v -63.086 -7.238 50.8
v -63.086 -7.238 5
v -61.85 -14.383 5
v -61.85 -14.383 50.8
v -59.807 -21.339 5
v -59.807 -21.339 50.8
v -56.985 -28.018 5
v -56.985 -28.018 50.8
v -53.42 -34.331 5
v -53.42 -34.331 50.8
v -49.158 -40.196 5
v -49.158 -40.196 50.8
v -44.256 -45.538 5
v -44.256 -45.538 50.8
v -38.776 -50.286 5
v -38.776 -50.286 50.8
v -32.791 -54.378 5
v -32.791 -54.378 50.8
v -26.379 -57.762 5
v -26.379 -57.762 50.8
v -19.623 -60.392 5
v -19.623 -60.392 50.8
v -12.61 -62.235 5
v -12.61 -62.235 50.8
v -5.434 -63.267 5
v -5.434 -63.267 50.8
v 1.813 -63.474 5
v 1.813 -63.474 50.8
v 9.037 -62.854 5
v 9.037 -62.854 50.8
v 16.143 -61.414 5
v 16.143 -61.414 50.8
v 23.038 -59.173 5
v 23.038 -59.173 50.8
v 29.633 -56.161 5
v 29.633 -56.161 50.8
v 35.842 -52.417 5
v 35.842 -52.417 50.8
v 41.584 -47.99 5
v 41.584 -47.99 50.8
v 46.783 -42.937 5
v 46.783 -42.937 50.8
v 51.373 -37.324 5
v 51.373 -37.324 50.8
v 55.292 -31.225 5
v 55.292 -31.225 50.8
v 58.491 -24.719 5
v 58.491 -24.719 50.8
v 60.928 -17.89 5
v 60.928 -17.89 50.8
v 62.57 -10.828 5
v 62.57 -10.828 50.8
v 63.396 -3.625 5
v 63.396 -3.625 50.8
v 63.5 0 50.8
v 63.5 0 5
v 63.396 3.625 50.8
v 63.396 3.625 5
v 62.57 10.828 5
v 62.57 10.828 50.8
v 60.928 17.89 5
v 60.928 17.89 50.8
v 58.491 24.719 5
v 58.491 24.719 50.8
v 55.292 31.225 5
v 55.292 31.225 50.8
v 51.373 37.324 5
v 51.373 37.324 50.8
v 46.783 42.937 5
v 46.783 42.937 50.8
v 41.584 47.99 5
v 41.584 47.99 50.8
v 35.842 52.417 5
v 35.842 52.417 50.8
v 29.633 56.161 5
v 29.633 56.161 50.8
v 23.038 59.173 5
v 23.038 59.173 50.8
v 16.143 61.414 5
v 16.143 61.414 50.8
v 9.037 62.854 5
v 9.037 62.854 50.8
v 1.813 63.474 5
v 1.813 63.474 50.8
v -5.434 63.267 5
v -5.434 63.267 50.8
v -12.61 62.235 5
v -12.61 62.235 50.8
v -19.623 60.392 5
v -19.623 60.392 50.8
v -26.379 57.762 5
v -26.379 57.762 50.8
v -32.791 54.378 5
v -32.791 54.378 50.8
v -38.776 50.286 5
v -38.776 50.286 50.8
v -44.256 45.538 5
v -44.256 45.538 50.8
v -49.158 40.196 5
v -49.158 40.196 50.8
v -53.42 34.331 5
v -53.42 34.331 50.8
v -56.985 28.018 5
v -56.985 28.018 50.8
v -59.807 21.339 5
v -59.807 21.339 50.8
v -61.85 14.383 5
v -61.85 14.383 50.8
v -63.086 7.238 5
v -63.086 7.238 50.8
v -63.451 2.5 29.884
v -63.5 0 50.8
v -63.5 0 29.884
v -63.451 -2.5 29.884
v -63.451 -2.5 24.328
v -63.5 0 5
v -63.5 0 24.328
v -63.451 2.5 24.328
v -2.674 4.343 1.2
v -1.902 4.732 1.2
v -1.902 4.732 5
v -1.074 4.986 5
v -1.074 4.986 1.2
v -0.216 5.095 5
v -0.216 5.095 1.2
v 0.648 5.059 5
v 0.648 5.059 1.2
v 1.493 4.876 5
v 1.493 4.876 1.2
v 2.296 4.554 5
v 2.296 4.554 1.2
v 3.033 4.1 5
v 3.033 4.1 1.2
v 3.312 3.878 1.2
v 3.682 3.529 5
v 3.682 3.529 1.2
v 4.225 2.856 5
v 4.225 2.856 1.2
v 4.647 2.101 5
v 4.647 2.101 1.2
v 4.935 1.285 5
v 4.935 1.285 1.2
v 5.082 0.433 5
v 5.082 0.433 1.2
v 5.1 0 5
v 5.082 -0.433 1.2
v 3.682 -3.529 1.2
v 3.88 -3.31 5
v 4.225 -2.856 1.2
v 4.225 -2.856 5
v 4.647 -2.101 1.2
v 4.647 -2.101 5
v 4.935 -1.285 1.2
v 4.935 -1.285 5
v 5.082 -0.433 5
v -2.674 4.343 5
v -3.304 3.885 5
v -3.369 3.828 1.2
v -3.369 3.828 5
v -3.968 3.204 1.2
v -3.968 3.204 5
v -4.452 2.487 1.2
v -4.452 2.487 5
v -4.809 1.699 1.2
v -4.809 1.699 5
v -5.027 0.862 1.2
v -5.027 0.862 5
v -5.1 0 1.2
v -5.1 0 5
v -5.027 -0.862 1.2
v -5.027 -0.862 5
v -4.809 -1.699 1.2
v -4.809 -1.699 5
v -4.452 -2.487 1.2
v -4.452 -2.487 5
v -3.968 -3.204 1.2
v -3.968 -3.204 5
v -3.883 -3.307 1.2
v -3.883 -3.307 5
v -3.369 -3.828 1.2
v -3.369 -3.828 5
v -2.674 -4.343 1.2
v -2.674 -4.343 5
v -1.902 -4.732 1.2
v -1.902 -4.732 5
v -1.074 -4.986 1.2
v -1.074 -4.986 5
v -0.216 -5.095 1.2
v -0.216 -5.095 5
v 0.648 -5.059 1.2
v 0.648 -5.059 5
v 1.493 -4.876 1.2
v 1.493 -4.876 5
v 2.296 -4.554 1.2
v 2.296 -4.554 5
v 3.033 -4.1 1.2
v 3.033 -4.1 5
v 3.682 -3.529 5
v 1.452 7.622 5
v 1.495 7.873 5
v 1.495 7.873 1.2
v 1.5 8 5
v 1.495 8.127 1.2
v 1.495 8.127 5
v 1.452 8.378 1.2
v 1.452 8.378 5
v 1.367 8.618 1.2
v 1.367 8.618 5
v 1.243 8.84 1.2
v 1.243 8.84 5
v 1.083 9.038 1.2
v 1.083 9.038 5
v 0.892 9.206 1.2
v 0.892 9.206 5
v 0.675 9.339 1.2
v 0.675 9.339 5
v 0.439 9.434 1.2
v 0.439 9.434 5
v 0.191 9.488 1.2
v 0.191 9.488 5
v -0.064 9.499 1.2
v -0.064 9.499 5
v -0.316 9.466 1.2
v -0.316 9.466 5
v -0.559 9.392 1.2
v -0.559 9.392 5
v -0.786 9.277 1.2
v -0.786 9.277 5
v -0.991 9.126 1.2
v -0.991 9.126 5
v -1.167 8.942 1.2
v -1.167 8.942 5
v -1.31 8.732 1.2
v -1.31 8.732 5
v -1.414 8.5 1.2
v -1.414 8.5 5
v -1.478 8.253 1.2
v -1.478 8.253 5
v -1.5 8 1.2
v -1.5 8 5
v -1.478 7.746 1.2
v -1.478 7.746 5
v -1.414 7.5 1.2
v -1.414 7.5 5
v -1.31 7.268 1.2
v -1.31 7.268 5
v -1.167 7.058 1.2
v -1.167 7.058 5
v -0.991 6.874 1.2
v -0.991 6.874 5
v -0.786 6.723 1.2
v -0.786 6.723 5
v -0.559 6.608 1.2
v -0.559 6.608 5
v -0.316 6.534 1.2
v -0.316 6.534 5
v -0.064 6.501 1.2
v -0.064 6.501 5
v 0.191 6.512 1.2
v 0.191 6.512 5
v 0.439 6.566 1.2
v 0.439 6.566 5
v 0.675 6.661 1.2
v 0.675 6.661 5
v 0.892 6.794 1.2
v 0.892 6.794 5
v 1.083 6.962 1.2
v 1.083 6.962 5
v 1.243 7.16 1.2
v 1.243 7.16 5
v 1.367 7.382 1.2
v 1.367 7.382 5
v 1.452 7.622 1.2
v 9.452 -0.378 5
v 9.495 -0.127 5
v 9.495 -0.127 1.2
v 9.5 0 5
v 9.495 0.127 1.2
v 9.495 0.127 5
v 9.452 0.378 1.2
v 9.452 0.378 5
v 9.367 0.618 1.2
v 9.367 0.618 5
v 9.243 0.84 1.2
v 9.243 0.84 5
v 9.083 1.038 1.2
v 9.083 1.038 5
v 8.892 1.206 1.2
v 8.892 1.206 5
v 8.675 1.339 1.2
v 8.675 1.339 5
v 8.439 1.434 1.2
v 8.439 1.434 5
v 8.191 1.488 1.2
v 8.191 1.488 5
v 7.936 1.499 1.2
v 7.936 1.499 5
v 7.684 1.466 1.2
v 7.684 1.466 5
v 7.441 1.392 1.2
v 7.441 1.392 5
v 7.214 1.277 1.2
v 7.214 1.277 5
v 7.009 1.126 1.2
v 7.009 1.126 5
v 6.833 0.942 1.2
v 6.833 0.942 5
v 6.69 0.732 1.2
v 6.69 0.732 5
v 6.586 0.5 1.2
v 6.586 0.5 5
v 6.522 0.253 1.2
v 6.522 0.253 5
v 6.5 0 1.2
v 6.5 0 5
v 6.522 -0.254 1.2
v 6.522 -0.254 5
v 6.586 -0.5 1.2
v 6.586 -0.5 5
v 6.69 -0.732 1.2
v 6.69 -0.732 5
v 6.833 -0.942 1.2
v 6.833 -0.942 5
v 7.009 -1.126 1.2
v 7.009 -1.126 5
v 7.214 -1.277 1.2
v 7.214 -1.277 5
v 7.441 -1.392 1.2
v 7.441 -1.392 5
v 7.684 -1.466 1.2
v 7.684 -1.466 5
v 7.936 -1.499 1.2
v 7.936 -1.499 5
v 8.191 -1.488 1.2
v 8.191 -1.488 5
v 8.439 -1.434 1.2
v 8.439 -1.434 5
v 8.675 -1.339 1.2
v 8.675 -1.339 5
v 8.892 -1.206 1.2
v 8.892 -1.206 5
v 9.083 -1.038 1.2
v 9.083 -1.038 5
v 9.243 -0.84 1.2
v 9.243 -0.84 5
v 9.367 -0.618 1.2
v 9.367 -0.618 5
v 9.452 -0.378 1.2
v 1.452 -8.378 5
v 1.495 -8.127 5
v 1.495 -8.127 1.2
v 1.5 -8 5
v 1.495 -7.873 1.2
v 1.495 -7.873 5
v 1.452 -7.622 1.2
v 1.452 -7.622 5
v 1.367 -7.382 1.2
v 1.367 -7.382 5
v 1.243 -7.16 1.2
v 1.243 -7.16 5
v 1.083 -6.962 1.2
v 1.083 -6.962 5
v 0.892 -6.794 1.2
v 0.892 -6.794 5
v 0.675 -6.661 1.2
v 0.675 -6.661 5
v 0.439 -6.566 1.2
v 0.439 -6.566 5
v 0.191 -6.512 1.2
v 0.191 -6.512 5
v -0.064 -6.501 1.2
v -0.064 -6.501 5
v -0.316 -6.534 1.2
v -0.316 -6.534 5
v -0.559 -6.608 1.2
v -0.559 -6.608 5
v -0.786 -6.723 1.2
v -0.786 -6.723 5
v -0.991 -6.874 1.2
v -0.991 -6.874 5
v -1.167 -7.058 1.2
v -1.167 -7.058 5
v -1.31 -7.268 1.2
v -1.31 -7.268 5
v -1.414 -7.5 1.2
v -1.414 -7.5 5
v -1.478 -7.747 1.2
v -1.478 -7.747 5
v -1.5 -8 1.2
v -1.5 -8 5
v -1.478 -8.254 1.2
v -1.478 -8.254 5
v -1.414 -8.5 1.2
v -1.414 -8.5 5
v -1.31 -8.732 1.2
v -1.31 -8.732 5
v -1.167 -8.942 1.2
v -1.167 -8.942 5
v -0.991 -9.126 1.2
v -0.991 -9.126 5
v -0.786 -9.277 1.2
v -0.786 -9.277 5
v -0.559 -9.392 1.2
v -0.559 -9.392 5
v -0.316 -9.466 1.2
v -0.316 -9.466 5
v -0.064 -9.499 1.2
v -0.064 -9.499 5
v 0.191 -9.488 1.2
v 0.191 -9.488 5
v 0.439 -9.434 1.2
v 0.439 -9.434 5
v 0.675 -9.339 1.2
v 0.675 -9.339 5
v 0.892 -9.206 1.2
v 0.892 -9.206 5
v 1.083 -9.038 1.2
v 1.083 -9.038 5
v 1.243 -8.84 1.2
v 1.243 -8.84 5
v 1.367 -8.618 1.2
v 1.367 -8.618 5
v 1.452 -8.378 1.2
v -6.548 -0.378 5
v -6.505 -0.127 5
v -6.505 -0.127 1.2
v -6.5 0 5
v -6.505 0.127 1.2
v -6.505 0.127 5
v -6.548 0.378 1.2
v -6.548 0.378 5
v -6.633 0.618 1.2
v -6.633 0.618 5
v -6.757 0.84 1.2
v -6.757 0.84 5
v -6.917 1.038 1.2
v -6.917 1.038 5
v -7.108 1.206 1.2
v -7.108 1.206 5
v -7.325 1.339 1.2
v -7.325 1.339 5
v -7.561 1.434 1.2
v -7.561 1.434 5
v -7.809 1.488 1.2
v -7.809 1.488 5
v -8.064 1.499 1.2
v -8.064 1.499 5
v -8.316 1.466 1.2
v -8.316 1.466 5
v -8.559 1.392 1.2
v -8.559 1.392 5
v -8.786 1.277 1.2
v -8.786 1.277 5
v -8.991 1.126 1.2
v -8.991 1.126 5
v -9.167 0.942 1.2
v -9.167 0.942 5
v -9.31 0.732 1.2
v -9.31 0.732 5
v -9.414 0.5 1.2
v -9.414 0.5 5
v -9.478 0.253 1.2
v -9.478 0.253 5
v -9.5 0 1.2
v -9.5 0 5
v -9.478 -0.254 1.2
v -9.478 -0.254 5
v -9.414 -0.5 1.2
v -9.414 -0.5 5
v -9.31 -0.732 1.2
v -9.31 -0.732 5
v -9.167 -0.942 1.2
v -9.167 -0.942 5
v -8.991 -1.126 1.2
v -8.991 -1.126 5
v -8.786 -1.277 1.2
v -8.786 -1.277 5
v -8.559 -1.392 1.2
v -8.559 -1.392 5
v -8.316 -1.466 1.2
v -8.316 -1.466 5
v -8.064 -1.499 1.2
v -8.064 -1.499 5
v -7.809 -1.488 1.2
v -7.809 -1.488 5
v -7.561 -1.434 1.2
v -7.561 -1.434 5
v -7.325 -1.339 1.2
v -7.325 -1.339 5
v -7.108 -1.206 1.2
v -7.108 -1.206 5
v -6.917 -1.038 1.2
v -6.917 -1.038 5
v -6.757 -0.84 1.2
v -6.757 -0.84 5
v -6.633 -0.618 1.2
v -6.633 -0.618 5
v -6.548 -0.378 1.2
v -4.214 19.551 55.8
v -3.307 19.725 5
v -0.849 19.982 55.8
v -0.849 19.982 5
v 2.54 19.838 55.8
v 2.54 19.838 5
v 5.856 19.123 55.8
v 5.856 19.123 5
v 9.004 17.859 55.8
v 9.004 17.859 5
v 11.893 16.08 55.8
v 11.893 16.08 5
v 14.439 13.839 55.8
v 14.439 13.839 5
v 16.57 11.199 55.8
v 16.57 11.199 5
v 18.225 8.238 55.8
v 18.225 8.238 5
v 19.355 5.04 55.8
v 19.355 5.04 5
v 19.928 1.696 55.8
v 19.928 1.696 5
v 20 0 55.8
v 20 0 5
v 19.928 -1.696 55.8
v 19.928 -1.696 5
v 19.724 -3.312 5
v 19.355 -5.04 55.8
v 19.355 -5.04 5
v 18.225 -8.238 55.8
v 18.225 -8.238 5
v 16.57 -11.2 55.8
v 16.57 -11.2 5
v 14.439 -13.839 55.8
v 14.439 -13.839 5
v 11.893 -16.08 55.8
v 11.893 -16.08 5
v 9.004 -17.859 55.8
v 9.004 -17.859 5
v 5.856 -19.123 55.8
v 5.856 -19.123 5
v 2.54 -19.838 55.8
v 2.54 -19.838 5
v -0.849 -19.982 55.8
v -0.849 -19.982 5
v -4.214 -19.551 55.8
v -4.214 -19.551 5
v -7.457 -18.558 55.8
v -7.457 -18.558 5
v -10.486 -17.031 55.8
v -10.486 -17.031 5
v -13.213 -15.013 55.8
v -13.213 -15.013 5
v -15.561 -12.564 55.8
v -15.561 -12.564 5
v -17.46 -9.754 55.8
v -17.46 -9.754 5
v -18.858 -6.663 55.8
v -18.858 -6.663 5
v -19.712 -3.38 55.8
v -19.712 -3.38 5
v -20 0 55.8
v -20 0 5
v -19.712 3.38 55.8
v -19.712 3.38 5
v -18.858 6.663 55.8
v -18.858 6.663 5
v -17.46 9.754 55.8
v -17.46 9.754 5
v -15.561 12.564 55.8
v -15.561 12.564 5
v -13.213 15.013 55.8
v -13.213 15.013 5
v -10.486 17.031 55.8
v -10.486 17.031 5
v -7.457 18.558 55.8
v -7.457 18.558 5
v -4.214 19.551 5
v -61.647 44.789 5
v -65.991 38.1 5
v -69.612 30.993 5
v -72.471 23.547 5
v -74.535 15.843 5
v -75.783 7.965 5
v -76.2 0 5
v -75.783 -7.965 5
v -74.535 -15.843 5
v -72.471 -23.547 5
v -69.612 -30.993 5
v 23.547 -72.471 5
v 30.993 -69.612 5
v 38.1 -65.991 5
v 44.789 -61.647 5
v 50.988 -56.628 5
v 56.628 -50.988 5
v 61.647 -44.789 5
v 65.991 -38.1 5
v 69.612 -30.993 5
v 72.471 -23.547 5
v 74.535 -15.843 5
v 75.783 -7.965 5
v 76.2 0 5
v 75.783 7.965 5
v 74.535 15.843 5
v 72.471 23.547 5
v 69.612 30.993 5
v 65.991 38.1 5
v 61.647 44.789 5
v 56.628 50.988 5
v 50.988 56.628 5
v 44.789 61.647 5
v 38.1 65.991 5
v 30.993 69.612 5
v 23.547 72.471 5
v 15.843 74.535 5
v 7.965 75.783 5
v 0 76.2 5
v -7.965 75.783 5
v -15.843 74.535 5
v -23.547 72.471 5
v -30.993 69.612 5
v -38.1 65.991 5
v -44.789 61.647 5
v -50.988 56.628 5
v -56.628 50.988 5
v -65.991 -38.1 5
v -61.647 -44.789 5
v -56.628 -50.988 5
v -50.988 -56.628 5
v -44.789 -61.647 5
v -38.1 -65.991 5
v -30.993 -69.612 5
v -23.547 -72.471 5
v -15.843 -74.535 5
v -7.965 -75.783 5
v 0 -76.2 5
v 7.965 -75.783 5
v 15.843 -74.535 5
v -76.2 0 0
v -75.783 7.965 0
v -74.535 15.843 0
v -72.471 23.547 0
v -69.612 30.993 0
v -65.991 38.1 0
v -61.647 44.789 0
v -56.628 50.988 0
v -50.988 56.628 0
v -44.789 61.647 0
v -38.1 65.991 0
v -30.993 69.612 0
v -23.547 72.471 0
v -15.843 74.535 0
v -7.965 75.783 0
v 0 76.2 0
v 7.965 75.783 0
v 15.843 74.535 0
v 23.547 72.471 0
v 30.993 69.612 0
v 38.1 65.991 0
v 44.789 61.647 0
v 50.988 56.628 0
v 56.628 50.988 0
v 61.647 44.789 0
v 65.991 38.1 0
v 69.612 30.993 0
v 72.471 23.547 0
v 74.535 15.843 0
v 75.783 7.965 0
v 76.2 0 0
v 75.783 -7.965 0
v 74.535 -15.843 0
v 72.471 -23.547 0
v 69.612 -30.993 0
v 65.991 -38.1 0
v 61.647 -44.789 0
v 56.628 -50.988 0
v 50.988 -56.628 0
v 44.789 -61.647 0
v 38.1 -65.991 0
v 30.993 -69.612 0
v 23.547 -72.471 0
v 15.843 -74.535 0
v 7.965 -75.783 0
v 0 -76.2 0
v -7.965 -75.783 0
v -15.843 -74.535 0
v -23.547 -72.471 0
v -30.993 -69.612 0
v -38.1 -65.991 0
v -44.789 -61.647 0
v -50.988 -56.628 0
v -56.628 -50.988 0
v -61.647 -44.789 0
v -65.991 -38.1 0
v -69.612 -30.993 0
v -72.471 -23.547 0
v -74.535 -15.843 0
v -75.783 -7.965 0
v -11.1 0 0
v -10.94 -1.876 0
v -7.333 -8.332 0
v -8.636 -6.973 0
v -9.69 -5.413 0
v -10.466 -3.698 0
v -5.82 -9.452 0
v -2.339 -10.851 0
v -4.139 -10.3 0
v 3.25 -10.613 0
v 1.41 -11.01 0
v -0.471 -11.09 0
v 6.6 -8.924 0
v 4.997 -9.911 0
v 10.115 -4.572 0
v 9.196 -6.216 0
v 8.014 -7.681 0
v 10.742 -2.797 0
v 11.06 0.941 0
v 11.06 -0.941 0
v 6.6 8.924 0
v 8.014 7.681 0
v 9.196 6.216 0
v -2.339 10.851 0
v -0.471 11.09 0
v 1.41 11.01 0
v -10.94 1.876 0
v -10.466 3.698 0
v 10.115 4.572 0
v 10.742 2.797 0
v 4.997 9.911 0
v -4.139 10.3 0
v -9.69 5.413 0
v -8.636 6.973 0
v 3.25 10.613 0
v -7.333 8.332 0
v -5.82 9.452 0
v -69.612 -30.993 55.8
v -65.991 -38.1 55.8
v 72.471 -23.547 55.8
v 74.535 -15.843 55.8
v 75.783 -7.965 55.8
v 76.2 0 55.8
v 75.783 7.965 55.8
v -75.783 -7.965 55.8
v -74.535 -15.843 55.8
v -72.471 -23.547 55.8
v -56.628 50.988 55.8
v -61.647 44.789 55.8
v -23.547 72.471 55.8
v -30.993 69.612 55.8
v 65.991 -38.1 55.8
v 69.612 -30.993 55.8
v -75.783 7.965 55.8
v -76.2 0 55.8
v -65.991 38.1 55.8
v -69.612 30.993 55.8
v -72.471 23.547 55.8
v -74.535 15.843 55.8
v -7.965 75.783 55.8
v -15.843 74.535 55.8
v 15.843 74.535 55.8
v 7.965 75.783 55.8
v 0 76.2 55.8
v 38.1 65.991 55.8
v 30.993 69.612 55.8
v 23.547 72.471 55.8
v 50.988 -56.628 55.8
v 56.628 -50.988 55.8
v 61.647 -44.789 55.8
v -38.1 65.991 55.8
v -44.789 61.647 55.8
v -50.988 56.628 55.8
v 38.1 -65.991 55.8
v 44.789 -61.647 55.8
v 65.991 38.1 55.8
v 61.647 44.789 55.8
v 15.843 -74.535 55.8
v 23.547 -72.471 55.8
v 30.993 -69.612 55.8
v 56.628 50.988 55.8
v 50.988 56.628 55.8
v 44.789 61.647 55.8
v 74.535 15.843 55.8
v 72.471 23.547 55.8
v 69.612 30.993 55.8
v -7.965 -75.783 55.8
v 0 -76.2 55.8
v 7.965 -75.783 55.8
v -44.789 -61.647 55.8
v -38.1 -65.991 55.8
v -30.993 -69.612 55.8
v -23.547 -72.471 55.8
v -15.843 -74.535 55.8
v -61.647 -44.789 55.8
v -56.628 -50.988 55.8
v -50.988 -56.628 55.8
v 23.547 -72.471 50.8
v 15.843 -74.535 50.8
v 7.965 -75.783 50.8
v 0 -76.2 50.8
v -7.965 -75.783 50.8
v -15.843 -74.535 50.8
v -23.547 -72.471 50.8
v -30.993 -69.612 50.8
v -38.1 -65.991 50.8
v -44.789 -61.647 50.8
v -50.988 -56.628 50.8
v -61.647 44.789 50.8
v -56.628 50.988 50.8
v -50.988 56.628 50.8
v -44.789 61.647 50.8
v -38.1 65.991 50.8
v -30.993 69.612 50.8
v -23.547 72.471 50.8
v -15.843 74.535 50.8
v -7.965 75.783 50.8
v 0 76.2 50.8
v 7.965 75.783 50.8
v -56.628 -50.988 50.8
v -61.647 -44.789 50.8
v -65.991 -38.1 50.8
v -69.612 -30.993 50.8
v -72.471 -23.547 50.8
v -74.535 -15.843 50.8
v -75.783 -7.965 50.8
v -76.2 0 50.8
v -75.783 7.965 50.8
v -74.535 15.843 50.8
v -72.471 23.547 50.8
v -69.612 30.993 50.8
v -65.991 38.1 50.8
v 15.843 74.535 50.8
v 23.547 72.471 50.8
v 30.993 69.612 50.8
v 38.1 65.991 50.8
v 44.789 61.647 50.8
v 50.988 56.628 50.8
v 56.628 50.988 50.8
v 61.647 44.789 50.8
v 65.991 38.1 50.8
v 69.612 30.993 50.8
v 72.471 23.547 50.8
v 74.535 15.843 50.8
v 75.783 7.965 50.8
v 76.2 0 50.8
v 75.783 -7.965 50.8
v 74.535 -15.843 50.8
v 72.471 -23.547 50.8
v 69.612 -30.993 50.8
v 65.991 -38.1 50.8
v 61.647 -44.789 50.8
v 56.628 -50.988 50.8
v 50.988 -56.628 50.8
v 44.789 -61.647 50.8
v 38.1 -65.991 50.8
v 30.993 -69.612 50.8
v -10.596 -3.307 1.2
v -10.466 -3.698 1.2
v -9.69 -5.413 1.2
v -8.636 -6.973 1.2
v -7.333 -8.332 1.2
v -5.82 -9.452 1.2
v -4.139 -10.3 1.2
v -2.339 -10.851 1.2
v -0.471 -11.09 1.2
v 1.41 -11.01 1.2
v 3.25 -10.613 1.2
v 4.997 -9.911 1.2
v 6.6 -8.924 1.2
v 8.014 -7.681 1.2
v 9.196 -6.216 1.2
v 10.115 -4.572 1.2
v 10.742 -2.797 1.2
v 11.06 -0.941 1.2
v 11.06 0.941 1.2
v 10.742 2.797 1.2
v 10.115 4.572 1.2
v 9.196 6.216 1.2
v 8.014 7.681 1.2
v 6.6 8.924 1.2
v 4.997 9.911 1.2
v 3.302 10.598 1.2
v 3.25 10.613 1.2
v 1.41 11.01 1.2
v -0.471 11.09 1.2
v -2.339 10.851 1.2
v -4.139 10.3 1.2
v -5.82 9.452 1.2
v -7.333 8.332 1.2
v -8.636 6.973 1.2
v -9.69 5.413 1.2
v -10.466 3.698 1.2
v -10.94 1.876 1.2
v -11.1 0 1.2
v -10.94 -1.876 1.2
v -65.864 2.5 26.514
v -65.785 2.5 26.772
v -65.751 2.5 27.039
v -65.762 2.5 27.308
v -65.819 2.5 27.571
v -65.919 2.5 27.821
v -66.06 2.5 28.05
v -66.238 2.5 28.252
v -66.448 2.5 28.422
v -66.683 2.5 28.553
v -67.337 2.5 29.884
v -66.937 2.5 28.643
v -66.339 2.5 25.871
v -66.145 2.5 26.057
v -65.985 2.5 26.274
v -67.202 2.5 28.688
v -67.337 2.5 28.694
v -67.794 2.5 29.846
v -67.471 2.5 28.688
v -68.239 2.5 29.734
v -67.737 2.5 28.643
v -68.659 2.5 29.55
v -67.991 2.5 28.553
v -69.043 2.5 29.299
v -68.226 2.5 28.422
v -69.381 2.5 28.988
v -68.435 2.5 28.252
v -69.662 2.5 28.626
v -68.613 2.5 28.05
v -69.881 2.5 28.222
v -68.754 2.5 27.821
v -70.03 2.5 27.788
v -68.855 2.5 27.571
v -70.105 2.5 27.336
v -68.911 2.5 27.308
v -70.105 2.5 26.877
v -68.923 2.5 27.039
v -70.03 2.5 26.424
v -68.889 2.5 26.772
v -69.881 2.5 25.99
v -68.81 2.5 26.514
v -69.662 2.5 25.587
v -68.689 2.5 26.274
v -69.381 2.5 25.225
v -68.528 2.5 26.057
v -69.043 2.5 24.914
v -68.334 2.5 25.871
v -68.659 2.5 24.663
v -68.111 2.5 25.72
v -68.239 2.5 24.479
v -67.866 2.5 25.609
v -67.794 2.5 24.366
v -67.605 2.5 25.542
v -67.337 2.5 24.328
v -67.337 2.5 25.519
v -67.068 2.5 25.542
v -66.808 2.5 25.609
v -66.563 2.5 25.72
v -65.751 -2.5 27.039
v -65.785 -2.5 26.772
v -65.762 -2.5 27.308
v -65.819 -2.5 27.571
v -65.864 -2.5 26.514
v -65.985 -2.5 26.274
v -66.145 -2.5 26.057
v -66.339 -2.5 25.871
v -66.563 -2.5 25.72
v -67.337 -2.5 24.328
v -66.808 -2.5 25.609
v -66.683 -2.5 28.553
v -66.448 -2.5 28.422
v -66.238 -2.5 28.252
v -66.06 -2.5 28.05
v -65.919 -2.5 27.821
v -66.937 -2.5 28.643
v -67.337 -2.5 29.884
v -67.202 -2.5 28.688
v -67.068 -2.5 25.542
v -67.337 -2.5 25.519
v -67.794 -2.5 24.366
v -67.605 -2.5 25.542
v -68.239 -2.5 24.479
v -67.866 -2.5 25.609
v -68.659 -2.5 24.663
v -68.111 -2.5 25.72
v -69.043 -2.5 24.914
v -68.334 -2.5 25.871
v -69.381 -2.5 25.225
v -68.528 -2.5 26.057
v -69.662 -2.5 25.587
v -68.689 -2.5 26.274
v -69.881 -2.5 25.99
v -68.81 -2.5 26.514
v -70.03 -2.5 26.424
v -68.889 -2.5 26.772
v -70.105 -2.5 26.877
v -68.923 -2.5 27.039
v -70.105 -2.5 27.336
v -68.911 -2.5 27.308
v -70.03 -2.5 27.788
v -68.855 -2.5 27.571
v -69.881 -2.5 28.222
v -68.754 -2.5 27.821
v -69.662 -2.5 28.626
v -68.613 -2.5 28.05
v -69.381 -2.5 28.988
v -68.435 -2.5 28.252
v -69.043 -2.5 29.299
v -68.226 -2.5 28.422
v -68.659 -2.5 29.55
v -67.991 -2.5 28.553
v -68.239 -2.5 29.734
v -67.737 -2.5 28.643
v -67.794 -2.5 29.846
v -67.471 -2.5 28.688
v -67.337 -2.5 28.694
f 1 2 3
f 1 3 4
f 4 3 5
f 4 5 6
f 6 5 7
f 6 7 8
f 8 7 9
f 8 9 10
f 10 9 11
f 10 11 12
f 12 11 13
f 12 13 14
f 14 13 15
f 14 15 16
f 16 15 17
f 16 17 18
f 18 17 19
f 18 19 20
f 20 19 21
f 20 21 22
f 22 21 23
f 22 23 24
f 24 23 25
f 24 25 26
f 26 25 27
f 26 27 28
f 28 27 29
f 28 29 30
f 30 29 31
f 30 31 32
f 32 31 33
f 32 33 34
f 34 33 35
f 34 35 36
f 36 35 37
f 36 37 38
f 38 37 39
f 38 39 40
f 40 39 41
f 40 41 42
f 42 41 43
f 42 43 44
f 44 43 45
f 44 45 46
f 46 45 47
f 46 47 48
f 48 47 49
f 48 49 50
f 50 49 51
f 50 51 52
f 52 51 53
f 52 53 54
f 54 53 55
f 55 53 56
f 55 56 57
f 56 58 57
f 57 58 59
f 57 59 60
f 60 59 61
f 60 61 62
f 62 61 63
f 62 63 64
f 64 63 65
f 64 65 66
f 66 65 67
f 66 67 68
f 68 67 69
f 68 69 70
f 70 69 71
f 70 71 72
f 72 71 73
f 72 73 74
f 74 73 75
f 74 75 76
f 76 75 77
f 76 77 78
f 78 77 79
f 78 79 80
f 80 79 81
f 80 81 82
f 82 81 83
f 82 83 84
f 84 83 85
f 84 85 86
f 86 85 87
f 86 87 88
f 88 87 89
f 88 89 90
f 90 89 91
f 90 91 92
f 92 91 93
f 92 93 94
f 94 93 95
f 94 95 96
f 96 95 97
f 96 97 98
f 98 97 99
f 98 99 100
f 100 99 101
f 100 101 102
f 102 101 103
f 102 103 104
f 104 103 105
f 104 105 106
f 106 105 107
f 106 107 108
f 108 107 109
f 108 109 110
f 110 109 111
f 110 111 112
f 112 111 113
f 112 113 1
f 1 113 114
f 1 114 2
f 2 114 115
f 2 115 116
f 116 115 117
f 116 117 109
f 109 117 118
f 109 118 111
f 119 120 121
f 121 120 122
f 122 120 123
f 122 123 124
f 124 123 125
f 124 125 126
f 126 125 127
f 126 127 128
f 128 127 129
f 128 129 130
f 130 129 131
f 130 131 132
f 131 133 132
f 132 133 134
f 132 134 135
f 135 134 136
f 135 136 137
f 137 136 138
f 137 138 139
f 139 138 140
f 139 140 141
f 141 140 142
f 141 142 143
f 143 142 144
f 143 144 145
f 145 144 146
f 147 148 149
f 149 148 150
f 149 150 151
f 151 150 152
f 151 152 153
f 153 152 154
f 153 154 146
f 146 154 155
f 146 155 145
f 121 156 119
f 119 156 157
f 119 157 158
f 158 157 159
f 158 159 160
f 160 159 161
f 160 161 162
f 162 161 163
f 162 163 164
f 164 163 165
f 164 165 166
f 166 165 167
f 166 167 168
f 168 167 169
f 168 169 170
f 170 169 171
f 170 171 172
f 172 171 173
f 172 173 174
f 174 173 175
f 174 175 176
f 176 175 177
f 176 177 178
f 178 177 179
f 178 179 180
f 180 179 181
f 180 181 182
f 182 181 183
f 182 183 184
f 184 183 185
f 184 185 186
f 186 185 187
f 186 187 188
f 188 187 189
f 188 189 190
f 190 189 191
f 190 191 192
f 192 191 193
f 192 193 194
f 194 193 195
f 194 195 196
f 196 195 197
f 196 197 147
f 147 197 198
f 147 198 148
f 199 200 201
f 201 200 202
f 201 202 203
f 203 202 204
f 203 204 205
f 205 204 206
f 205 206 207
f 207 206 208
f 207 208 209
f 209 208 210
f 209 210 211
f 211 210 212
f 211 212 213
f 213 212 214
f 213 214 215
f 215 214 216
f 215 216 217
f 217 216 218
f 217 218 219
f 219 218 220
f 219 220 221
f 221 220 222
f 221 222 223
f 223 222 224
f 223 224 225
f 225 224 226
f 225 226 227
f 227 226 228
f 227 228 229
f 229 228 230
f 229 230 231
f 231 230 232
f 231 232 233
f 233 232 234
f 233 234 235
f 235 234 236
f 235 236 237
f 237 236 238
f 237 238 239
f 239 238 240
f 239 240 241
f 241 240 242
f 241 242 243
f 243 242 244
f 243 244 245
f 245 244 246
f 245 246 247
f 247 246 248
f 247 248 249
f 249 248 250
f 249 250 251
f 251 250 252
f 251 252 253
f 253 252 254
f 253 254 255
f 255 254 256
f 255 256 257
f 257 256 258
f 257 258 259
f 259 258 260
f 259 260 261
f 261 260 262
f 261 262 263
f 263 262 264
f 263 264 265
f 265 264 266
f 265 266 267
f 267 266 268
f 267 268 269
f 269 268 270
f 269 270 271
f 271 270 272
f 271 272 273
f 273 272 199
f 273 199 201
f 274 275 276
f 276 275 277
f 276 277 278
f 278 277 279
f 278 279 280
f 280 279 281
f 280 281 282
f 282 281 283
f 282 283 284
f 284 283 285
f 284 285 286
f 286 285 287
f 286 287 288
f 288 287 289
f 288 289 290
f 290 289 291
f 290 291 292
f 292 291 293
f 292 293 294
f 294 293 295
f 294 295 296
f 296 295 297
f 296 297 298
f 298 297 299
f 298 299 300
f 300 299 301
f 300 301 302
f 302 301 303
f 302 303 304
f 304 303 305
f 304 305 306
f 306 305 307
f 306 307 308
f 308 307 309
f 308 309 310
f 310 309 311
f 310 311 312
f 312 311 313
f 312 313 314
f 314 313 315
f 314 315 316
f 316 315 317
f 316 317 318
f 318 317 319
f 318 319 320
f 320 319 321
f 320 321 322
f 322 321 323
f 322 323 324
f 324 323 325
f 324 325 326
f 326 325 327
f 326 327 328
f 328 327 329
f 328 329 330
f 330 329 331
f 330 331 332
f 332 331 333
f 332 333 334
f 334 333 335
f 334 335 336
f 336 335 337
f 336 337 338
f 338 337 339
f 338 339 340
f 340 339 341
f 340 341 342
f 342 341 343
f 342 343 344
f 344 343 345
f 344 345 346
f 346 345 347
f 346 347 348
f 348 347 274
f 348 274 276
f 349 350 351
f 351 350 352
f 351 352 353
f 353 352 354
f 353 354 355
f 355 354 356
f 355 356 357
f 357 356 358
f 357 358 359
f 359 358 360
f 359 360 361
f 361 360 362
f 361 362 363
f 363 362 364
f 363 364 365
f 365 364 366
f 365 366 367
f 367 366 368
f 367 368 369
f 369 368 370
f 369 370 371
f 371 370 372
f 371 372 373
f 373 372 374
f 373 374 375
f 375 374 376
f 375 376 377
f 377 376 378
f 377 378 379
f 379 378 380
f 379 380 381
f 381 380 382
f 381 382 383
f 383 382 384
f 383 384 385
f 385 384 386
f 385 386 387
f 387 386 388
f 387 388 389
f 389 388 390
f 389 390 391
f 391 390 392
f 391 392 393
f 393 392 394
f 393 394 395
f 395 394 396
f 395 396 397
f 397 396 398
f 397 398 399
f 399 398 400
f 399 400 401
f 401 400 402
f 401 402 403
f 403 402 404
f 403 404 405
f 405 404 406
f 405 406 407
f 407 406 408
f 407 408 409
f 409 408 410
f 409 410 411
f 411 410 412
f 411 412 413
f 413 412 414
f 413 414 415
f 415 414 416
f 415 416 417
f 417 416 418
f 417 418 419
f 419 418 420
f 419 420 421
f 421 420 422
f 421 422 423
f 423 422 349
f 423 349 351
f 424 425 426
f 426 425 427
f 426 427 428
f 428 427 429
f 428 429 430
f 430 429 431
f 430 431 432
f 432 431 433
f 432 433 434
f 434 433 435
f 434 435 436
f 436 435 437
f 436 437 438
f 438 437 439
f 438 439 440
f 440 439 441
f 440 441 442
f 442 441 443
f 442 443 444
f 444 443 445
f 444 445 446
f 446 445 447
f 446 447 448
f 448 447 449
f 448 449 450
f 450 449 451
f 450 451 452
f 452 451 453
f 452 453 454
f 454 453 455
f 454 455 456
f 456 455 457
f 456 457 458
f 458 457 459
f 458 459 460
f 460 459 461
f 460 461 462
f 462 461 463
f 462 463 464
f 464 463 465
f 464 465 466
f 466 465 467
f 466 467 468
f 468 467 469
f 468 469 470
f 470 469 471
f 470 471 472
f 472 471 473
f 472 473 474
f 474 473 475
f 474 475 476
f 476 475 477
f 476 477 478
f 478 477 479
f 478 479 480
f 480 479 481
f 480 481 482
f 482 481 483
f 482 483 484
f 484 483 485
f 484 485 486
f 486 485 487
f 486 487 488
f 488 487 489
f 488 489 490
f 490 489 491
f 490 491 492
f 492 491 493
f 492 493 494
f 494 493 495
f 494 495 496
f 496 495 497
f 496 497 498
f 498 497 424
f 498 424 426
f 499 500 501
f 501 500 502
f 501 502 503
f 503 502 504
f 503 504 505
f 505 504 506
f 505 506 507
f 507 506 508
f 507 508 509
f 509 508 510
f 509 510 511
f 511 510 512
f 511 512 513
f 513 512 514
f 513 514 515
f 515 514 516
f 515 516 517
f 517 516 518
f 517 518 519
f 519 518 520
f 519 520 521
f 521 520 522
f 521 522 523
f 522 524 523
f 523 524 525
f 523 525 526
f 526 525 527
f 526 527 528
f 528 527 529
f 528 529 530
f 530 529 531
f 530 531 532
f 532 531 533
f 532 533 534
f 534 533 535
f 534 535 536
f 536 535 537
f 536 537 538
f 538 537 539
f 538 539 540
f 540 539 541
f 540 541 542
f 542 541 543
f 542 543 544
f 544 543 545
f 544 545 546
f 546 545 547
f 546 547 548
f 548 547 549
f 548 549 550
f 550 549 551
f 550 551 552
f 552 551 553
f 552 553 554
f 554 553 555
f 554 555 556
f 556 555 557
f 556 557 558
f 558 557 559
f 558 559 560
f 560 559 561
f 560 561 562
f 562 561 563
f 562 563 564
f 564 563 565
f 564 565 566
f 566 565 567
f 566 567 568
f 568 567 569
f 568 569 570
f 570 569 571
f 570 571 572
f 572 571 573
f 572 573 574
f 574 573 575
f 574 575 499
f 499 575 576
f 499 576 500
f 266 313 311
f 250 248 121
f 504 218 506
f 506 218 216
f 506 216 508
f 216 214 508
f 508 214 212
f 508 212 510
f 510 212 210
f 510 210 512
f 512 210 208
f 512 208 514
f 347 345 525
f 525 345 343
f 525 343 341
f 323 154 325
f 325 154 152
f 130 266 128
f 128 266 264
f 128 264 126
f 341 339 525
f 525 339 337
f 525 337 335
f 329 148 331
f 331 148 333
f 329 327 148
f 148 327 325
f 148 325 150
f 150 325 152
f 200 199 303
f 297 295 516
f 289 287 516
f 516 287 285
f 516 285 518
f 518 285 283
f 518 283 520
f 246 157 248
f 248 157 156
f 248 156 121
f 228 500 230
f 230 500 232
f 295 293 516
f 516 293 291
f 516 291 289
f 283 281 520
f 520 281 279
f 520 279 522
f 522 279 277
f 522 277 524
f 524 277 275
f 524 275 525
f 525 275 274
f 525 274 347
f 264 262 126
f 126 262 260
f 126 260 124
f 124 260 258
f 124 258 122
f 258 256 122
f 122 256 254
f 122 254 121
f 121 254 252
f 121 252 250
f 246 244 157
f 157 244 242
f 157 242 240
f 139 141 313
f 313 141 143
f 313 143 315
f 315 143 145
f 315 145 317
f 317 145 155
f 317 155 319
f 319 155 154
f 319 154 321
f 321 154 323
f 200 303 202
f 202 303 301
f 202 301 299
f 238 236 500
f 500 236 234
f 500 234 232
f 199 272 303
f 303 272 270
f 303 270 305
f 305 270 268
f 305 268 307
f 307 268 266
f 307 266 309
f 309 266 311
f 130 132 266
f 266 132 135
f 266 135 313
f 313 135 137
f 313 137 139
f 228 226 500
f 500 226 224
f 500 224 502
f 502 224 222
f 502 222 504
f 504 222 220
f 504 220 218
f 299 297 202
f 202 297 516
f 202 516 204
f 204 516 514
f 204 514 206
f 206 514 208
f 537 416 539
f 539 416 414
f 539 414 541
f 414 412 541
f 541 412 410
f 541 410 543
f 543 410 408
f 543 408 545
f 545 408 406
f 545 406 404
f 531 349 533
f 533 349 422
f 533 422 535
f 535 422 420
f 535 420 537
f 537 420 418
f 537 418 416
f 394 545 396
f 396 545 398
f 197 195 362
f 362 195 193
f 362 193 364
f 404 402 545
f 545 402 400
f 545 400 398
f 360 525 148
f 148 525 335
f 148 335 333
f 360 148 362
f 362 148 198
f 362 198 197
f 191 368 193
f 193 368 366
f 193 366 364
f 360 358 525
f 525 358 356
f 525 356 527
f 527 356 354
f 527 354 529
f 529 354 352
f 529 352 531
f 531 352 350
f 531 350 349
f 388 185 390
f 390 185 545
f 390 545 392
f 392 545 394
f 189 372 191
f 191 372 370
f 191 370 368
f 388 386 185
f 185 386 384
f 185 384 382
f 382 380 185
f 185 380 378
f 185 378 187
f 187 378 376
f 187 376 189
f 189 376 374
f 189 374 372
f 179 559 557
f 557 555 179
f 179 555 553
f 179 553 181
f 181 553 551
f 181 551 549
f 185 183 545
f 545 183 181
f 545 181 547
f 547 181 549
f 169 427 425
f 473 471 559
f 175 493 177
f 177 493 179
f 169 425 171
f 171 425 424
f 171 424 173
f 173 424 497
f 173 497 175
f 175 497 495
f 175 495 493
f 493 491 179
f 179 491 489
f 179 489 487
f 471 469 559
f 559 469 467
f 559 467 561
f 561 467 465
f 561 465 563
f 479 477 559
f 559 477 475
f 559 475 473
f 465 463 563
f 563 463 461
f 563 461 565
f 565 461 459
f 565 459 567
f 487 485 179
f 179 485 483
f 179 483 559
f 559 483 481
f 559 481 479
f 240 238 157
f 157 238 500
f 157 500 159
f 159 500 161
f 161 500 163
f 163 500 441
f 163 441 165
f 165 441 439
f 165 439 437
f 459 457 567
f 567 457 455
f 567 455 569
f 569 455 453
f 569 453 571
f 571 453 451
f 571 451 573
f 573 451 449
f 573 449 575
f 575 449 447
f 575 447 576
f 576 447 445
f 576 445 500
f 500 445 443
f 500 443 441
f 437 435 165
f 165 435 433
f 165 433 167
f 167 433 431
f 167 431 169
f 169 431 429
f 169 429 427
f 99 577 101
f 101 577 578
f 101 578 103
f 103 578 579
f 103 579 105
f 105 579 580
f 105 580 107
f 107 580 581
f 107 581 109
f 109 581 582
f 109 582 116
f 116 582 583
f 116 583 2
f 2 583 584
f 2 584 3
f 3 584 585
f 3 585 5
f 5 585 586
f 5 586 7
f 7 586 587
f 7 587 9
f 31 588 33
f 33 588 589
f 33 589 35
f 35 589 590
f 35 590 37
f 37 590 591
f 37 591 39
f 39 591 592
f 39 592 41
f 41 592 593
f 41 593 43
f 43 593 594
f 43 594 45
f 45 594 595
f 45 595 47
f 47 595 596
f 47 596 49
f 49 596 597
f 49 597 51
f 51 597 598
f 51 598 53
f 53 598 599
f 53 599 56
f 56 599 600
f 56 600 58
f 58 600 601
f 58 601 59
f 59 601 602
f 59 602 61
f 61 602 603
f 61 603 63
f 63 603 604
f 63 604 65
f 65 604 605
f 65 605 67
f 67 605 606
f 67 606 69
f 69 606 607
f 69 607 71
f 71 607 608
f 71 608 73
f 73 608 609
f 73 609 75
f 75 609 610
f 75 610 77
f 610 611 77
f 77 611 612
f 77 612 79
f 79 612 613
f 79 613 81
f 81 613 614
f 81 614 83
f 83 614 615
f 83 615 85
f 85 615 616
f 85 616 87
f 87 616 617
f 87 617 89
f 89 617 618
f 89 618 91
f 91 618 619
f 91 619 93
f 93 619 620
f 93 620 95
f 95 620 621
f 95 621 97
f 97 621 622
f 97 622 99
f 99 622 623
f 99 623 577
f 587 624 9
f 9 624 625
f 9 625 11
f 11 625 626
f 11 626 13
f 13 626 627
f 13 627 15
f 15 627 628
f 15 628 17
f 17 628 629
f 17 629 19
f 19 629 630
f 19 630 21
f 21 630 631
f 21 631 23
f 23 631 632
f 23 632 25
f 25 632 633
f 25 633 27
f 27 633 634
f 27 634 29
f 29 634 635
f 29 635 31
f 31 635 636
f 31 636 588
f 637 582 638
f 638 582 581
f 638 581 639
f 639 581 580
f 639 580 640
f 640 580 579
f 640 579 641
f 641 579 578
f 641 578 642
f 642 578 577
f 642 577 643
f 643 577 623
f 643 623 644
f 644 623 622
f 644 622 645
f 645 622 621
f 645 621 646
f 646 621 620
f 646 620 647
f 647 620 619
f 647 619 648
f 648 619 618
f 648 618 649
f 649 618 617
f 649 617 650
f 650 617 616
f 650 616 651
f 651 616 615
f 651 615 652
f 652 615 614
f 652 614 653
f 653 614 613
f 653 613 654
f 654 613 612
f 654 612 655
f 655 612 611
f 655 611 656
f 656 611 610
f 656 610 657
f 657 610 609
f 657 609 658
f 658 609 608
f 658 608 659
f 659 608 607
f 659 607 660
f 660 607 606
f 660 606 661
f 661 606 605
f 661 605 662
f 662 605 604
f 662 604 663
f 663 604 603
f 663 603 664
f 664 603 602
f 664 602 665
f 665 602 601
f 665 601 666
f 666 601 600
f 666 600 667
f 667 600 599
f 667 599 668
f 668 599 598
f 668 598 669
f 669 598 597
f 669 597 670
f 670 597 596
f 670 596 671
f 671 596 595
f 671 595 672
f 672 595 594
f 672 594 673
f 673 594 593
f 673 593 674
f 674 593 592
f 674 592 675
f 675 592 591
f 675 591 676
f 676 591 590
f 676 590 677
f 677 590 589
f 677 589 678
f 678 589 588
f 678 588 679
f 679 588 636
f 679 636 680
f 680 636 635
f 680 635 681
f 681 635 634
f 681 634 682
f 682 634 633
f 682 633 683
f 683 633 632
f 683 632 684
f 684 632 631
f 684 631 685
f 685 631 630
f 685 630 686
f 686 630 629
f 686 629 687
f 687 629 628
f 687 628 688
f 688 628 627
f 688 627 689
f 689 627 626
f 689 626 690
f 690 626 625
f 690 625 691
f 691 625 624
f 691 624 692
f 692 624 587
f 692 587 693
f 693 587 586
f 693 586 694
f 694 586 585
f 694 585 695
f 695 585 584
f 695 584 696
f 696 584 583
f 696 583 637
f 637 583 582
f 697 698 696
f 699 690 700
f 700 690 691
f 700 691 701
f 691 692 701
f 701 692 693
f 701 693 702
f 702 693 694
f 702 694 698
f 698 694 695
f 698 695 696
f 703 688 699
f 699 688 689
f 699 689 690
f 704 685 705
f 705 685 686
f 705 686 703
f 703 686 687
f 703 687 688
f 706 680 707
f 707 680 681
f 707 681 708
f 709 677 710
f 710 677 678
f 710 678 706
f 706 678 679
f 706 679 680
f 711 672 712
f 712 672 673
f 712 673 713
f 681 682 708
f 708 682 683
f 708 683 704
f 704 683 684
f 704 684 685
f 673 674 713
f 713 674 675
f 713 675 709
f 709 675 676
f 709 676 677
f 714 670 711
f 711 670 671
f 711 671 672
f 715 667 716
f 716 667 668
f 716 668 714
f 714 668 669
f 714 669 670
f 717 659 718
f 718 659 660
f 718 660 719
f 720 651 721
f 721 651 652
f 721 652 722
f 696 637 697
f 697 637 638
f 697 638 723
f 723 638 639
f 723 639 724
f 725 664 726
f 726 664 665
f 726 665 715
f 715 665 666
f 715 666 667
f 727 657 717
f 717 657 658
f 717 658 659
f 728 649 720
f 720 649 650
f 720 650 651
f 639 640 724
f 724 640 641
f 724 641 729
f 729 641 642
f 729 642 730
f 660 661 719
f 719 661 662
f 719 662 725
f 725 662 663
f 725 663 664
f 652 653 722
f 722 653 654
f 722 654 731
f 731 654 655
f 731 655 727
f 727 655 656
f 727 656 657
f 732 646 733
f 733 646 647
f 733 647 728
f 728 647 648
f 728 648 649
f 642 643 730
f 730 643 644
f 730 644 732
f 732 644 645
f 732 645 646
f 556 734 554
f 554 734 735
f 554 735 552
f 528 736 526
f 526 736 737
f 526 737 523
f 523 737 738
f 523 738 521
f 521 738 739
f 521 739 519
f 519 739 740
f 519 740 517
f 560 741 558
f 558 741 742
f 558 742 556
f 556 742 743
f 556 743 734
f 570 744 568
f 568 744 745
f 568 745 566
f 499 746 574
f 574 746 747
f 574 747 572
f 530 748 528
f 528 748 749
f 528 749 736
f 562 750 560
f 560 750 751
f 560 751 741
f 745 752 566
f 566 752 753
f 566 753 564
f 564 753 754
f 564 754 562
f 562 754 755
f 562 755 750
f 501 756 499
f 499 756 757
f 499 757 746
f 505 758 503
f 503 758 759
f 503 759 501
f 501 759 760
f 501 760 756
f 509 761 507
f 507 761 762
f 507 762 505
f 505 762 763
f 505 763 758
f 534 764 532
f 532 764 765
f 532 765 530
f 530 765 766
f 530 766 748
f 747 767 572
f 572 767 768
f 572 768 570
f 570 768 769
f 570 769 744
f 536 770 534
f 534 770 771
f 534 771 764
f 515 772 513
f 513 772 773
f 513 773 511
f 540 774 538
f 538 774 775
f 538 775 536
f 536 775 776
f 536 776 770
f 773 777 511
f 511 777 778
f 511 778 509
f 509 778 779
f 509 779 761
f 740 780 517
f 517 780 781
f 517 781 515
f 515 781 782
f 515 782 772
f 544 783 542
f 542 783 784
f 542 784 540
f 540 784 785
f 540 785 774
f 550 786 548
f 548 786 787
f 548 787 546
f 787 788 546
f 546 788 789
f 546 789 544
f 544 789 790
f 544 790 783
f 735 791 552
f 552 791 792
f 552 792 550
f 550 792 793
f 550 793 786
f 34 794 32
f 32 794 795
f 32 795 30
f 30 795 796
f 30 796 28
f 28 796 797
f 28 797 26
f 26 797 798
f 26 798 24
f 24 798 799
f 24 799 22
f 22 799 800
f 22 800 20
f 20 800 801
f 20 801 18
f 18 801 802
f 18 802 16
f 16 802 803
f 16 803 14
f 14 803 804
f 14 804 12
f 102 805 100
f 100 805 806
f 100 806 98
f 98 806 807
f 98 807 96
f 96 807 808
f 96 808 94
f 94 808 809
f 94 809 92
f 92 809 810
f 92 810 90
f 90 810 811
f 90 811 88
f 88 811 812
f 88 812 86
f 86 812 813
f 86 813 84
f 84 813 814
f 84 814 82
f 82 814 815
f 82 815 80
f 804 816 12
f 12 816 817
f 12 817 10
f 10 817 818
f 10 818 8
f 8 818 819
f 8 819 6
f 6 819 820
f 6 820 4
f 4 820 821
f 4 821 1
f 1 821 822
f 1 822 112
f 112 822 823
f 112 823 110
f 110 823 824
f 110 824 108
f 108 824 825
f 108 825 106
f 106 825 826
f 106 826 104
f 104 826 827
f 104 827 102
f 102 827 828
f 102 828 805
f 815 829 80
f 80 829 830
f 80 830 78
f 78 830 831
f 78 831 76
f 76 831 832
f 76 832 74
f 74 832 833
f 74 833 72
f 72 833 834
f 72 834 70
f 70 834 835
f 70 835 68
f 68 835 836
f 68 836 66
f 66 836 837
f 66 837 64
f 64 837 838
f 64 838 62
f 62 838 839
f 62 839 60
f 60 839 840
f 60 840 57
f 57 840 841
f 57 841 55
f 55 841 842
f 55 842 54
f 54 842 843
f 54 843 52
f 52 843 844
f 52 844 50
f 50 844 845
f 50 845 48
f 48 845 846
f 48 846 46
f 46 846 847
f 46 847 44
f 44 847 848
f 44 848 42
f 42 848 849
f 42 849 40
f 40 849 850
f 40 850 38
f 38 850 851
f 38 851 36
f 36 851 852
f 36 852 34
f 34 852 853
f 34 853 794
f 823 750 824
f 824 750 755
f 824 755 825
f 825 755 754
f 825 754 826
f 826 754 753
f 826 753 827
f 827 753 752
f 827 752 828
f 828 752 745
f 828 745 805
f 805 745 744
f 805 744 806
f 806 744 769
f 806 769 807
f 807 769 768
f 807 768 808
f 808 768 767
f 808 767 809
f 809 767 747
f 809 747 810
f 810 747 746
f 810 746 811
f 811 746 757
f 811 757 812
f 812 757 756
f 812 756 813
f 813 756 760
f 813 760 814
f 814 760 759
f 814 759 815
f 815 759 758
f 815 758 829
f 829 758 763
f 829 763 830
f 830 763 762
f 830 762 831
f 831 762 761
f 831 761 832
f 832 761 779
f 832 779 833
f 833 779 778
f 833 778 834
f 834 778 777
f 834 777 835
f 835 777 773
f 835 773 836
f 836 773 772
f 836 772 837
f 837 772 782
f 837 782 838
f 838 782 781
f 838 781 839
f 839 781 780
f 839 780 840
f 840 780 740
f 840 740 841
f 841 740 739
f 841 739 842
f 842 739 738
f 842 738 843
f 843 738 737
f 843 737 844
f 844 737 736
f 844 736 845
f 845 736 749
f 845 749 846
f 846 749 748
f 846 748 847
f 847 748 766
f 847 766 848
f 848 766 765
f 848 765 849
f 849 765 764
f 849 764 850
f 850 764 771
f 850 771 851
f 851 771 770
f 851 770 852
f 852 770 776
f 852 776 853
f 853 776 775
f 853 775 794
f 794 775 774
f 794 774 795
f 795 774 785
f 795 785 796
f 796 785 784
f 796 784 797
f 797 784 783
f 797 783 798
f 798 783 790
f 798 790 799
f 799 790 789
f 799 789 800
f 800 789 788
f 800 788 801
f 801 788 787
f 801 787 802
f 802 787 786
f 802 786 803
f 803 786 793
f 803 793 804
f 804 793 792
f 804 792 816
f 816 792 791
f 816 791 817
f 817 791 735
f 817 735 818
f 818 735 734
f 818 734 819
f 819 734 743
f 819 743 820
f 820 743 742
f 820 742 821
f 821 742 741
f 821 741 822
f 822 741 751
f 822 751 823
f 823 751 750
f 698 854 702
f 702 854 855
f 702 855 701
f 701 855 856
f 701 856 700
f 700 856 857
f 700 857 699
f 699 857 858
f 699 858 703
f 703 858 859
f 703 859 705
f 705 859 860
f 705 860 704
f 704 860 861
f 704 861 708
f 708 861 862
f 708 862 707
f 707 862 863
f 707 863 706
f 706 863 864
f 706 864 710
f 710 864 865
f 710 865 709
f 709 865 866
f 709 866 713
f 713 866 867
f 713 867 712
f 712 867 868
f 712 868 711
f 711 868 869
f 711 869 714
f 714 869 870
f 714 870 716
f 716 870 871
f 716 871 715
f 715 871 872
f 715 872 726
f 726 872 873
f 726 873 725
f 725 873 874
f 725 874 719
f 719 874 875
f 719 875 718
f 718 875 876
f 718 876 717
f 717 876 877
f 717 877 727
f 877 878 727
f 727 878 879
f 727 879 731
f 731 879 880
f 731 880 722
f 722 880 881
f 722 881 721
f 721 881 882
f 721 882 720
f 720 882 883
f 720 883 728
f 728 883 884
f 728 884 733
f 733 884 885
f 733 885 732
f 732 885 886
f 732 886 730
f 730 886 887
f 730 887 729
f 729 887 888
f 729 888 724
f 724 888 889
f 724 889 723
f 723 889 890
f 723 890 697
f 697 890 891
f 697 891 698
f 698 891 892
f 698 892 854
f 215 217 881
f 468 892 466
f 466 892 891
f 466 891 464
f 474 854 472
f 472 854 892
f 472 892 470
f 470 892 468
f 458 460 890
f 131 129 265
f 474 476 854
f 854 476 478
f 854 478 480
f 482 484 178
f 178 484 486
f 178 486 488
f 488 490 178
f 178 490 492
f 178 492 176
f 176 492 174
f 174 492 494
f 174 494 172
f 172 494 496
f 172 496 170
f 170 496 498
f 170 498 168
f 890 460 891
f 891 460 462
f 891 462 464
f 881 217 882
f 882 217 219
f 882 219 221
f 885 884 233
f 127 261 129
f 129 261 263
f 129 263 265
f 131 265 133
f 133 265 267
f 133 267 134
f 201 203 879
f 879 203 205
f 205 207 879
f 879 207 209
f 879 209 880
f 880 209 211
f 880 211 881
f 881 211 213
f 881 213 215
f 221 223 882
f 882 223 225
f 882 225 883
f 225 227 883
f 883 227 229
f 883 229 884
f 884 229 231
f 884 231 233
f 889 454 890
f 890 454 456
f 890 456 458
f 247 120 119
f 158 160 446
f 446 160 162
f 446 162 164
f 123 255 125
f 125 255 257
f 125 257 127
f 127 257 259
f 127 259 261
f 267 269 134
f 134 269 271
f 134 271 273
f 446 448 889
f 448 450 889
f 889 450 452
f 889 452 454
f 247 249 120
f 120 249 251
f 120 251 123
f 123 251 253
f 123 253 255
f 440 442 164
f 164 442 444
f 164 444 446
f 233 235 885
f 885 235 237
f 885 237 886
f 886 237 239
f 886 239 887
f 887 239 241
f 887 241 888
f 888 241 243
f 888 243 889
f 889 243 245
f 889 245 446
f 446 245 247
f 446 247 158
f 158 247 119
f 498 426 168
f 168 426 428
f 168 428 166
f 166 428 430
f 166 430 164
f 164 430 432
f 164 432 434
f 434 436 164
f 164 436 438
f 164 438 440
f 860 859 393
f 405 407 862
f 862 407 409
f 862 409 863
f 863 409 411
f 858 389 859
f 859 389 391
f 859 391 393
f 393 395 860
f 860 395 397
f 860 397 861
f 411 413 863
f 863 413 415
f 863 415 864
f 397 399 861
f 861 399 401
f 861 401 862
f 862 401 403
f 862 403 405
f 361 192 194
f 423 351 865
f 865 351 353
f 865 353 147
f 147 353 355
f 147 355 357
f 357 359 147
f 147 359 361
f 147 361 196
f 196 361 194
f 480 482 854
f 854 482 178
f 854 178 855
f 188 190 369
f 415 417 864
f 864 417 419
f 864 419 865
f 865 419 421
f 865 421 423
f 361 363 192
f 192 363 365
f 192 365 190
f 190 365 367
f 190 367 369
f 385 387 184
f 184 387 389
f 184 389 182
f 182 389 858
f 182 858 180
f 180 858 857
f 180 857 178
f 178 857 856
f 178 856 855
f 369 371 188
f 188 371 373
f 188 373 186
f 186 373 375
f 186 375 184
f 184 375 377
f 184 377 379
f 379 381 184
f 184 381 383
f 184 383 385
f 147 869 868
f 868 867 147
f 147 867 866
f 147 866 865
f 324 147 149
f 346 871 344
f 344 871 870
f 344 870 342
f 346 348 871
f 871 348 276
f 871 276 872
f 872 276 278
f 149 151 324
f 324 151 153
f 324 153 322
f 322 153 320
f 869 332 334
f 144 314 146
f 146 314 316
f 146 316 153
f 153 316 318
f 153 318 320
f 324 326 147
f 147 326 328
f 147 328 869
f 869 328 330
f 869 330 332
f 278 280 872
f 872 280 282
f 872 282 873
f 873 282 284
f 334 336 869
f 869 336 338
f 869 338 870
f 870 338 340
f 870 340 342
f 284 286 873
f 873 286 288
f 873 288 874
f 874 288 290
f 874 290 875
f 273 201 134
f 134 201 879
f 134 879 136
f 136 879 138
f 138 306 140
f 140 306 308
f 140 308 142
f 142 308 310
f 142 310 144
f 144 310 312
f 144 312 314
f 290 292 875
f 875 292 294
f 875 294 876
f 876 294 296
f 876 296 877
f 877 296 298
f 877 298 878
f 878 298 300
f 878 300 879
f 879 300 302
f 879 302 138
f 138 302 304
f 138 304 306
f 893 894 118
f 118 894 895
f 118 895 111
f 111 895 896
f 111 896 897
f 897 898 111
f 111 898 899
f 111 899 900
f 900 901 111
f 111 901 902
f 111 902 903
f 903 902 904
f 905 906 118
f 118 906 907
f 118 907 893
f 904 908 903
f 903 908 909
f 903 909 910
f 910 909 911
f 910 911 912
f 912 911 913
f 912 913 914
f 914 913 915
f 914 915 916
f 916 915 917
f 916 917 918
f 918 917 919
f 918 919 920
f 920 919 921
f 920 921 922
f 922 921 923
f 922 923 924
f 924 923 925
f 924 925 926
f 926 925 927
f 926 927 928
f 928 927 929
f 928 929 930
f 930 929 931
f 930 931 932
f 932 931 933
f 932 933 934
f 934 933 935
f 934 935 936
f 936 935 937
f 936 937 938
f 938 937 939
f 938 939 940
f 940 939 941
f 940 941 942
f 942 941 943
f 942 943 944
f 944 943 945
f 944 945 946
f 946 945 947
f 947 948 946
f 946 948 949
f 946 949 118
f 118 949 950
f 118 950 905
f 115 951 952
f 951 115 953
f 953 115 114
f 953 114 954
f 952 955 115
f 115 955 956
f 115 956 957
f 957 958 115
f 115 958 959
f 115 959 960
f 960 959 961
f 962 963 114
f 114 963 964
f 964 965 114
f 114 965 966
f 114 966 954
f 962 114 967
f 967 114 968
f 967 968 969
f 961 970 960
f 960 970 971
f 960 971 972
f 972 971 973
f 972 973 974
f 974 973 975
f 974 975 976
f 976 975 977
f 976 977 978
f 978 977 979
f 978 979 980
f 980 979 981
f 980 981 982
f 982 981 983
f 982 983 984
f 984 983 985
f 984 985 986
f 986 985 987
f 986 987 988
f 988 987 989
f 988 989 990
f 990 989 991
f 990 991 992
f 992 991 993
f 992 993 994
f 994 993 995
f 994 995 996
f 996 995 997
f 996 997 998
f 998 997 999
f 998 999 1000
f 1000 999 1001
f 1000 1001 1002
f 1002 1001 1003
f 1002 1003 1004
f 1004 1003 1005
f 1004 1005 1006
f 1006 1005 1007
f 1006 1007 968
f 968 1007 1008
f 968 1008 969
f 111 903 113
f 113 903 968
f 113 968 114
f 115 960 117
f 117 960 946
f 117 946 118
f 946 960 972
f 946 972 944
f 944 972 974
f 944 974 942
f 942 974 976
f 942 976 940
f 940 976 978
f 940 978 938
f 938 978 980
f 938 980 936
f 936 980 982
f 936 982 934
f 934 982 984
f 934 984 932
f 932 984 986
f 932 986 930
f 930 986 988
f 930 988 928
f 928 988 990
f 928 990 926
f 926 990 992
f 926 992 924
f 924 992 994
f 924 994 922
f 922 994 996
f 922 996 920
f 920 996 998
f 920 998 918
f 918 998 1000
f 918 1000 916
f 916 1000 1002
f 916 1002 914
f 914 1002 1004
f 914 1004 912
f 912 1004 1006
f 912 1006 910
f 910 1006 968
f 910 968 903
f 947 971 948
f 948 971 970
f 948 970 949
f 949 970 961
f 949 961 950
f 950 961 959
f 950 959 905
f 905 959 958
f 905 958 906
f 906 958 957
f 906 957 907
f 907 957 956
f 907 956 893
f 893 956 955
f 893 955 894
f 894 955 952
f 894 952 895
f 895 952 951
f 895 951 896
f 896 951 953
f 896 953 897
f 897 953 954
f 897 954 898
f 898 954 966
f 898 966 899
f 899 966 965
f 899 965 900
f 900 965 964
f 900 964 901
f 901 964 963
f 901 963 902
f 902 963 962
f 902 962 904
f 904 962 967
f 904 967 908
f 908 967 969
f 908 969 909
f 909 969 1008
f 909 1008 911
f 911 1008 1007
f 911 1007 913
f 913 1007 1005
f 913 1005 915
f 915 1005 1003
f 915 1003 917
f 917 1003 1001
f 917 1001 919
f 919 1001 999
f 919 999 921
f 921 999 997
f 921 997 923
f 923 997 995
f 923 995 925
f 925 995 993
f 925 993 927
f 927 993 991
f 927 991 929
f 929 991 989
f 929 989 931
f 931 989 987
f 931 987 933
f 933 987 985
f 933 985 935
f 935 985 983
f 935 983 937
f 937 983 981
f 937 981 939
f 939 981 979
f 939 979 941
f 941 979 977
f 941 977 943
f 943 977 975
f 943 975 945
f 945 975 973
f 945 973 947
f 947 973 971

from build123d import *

# Parameters (mm, degrees)
SKETCH1_R           = 63.5
SKETCH1_R_2         = 20
BOSS_EXTRUDE1_DEPTH = 50.8
SKETCH3_R           = 76.2
SKETCH3_R_2         = 5.1
SKETCH3_R_3         = 1.5
BOSS_EXTRUDE2_DEPTH = 5
SKETCH4_R           = 76.2
SKETCH4_R_2         = 20
BOSS_EXTRUDE3_DEPTH = 5
SKETCH5_R           = 11.1
CUT_EXTRUDE1_DEPTH  = 1.2
SKETCH6_R           = 1.5875
BOSS_EXTRUDE4_DEPTH = 2.5


with BuildPart() as part:
    # Sketch1 → Boss-Extrude1 (new body)
    with BuildSketch(Plane.XY):
        Circle(SKETCH1_R)
        Circle(SKETCH1_R_2, mode=Mode.SUBTRACT)
    extrude(amount=BOSS_EXTRUDE1_DEPTH)

    # Sketch3 → Boss-Extrude2 (add)
    with BuildSketch(Plane.XY):
        Circle(SKETCH3_R)
        Circle(SKETCH3_R_2, mode=Mode.SUBTRACT)
        with Locations((0, 8)):
            Circle(SKETCH3_R_3, mode=Mode.SUBTRACT)
        with Locations((8, 0)):
            Circle(SKETCH3_R_3, mode=Mode.SUBTRACT)
        with Locations((0, -8)):
            Circle(SKETCH3_R_3, mode=Mode.SUBTRACT)
        with Locations((-8, 0)):
            Circle(SKETCH3_R_3, mode=Mode.SUBTRACT)
    extrude(amount=BOSS_EXTRUDE2_DEPTH)

    # Sketch4 → Boss-Extrude3 (add)
    with BuildSketch(Plane.XY.offset(50.8)):
        Circle(SKETCH4_R)
        Circle(SKETCH4_R_2, mode=Mode.SUBTRACT)
    extrude(amount=BOSS_EXTRUDE3_DEPTH)

    # Sketch5 → Cut-Extrude1 (cut)
    with BuildSketch(Plane(origin=(0, 0, 0), x_dir=(-1, 0, 0), z_dir=(0, 0, -1))):
        Circle(SKETCH5_R)
    extrude(amount=-CUT_EXTRUDE1_DEPTH, mode=Mode.SUBTRACT)

    # Sketch6 → Boss-Extrude4 (add, symmetric)
    with BuildSketch(Plane(origin=(0, 0, 0), x_dir=(1, 0, 0), z_dir=(0, 1, 0))):
        with BuildLine():
            Line((-59.663256535, -29.884375), (-59.663256535, -24.328125))
            Line((-59.663256535, -24.328125), (-67.336743465, -24.328125))
            ThreePointArc((-67.336743465, -24.328125), (-70.114868465, -27.10625), (-67.336743465, -29.884375))
            Line((-67.336743465, -29.884375), (-59.663256535, -29.884375))
        make_face()
        with Locations(Location((-67.336743465, -27.10625, 0), (0, 0, 270))):
            Circle(SKETCH6_R, mode=Mode.SUBTRACT)
    extrude(amount=BOSS_EXTRUDE4_DEPTH, both=True)


solid = part.part
